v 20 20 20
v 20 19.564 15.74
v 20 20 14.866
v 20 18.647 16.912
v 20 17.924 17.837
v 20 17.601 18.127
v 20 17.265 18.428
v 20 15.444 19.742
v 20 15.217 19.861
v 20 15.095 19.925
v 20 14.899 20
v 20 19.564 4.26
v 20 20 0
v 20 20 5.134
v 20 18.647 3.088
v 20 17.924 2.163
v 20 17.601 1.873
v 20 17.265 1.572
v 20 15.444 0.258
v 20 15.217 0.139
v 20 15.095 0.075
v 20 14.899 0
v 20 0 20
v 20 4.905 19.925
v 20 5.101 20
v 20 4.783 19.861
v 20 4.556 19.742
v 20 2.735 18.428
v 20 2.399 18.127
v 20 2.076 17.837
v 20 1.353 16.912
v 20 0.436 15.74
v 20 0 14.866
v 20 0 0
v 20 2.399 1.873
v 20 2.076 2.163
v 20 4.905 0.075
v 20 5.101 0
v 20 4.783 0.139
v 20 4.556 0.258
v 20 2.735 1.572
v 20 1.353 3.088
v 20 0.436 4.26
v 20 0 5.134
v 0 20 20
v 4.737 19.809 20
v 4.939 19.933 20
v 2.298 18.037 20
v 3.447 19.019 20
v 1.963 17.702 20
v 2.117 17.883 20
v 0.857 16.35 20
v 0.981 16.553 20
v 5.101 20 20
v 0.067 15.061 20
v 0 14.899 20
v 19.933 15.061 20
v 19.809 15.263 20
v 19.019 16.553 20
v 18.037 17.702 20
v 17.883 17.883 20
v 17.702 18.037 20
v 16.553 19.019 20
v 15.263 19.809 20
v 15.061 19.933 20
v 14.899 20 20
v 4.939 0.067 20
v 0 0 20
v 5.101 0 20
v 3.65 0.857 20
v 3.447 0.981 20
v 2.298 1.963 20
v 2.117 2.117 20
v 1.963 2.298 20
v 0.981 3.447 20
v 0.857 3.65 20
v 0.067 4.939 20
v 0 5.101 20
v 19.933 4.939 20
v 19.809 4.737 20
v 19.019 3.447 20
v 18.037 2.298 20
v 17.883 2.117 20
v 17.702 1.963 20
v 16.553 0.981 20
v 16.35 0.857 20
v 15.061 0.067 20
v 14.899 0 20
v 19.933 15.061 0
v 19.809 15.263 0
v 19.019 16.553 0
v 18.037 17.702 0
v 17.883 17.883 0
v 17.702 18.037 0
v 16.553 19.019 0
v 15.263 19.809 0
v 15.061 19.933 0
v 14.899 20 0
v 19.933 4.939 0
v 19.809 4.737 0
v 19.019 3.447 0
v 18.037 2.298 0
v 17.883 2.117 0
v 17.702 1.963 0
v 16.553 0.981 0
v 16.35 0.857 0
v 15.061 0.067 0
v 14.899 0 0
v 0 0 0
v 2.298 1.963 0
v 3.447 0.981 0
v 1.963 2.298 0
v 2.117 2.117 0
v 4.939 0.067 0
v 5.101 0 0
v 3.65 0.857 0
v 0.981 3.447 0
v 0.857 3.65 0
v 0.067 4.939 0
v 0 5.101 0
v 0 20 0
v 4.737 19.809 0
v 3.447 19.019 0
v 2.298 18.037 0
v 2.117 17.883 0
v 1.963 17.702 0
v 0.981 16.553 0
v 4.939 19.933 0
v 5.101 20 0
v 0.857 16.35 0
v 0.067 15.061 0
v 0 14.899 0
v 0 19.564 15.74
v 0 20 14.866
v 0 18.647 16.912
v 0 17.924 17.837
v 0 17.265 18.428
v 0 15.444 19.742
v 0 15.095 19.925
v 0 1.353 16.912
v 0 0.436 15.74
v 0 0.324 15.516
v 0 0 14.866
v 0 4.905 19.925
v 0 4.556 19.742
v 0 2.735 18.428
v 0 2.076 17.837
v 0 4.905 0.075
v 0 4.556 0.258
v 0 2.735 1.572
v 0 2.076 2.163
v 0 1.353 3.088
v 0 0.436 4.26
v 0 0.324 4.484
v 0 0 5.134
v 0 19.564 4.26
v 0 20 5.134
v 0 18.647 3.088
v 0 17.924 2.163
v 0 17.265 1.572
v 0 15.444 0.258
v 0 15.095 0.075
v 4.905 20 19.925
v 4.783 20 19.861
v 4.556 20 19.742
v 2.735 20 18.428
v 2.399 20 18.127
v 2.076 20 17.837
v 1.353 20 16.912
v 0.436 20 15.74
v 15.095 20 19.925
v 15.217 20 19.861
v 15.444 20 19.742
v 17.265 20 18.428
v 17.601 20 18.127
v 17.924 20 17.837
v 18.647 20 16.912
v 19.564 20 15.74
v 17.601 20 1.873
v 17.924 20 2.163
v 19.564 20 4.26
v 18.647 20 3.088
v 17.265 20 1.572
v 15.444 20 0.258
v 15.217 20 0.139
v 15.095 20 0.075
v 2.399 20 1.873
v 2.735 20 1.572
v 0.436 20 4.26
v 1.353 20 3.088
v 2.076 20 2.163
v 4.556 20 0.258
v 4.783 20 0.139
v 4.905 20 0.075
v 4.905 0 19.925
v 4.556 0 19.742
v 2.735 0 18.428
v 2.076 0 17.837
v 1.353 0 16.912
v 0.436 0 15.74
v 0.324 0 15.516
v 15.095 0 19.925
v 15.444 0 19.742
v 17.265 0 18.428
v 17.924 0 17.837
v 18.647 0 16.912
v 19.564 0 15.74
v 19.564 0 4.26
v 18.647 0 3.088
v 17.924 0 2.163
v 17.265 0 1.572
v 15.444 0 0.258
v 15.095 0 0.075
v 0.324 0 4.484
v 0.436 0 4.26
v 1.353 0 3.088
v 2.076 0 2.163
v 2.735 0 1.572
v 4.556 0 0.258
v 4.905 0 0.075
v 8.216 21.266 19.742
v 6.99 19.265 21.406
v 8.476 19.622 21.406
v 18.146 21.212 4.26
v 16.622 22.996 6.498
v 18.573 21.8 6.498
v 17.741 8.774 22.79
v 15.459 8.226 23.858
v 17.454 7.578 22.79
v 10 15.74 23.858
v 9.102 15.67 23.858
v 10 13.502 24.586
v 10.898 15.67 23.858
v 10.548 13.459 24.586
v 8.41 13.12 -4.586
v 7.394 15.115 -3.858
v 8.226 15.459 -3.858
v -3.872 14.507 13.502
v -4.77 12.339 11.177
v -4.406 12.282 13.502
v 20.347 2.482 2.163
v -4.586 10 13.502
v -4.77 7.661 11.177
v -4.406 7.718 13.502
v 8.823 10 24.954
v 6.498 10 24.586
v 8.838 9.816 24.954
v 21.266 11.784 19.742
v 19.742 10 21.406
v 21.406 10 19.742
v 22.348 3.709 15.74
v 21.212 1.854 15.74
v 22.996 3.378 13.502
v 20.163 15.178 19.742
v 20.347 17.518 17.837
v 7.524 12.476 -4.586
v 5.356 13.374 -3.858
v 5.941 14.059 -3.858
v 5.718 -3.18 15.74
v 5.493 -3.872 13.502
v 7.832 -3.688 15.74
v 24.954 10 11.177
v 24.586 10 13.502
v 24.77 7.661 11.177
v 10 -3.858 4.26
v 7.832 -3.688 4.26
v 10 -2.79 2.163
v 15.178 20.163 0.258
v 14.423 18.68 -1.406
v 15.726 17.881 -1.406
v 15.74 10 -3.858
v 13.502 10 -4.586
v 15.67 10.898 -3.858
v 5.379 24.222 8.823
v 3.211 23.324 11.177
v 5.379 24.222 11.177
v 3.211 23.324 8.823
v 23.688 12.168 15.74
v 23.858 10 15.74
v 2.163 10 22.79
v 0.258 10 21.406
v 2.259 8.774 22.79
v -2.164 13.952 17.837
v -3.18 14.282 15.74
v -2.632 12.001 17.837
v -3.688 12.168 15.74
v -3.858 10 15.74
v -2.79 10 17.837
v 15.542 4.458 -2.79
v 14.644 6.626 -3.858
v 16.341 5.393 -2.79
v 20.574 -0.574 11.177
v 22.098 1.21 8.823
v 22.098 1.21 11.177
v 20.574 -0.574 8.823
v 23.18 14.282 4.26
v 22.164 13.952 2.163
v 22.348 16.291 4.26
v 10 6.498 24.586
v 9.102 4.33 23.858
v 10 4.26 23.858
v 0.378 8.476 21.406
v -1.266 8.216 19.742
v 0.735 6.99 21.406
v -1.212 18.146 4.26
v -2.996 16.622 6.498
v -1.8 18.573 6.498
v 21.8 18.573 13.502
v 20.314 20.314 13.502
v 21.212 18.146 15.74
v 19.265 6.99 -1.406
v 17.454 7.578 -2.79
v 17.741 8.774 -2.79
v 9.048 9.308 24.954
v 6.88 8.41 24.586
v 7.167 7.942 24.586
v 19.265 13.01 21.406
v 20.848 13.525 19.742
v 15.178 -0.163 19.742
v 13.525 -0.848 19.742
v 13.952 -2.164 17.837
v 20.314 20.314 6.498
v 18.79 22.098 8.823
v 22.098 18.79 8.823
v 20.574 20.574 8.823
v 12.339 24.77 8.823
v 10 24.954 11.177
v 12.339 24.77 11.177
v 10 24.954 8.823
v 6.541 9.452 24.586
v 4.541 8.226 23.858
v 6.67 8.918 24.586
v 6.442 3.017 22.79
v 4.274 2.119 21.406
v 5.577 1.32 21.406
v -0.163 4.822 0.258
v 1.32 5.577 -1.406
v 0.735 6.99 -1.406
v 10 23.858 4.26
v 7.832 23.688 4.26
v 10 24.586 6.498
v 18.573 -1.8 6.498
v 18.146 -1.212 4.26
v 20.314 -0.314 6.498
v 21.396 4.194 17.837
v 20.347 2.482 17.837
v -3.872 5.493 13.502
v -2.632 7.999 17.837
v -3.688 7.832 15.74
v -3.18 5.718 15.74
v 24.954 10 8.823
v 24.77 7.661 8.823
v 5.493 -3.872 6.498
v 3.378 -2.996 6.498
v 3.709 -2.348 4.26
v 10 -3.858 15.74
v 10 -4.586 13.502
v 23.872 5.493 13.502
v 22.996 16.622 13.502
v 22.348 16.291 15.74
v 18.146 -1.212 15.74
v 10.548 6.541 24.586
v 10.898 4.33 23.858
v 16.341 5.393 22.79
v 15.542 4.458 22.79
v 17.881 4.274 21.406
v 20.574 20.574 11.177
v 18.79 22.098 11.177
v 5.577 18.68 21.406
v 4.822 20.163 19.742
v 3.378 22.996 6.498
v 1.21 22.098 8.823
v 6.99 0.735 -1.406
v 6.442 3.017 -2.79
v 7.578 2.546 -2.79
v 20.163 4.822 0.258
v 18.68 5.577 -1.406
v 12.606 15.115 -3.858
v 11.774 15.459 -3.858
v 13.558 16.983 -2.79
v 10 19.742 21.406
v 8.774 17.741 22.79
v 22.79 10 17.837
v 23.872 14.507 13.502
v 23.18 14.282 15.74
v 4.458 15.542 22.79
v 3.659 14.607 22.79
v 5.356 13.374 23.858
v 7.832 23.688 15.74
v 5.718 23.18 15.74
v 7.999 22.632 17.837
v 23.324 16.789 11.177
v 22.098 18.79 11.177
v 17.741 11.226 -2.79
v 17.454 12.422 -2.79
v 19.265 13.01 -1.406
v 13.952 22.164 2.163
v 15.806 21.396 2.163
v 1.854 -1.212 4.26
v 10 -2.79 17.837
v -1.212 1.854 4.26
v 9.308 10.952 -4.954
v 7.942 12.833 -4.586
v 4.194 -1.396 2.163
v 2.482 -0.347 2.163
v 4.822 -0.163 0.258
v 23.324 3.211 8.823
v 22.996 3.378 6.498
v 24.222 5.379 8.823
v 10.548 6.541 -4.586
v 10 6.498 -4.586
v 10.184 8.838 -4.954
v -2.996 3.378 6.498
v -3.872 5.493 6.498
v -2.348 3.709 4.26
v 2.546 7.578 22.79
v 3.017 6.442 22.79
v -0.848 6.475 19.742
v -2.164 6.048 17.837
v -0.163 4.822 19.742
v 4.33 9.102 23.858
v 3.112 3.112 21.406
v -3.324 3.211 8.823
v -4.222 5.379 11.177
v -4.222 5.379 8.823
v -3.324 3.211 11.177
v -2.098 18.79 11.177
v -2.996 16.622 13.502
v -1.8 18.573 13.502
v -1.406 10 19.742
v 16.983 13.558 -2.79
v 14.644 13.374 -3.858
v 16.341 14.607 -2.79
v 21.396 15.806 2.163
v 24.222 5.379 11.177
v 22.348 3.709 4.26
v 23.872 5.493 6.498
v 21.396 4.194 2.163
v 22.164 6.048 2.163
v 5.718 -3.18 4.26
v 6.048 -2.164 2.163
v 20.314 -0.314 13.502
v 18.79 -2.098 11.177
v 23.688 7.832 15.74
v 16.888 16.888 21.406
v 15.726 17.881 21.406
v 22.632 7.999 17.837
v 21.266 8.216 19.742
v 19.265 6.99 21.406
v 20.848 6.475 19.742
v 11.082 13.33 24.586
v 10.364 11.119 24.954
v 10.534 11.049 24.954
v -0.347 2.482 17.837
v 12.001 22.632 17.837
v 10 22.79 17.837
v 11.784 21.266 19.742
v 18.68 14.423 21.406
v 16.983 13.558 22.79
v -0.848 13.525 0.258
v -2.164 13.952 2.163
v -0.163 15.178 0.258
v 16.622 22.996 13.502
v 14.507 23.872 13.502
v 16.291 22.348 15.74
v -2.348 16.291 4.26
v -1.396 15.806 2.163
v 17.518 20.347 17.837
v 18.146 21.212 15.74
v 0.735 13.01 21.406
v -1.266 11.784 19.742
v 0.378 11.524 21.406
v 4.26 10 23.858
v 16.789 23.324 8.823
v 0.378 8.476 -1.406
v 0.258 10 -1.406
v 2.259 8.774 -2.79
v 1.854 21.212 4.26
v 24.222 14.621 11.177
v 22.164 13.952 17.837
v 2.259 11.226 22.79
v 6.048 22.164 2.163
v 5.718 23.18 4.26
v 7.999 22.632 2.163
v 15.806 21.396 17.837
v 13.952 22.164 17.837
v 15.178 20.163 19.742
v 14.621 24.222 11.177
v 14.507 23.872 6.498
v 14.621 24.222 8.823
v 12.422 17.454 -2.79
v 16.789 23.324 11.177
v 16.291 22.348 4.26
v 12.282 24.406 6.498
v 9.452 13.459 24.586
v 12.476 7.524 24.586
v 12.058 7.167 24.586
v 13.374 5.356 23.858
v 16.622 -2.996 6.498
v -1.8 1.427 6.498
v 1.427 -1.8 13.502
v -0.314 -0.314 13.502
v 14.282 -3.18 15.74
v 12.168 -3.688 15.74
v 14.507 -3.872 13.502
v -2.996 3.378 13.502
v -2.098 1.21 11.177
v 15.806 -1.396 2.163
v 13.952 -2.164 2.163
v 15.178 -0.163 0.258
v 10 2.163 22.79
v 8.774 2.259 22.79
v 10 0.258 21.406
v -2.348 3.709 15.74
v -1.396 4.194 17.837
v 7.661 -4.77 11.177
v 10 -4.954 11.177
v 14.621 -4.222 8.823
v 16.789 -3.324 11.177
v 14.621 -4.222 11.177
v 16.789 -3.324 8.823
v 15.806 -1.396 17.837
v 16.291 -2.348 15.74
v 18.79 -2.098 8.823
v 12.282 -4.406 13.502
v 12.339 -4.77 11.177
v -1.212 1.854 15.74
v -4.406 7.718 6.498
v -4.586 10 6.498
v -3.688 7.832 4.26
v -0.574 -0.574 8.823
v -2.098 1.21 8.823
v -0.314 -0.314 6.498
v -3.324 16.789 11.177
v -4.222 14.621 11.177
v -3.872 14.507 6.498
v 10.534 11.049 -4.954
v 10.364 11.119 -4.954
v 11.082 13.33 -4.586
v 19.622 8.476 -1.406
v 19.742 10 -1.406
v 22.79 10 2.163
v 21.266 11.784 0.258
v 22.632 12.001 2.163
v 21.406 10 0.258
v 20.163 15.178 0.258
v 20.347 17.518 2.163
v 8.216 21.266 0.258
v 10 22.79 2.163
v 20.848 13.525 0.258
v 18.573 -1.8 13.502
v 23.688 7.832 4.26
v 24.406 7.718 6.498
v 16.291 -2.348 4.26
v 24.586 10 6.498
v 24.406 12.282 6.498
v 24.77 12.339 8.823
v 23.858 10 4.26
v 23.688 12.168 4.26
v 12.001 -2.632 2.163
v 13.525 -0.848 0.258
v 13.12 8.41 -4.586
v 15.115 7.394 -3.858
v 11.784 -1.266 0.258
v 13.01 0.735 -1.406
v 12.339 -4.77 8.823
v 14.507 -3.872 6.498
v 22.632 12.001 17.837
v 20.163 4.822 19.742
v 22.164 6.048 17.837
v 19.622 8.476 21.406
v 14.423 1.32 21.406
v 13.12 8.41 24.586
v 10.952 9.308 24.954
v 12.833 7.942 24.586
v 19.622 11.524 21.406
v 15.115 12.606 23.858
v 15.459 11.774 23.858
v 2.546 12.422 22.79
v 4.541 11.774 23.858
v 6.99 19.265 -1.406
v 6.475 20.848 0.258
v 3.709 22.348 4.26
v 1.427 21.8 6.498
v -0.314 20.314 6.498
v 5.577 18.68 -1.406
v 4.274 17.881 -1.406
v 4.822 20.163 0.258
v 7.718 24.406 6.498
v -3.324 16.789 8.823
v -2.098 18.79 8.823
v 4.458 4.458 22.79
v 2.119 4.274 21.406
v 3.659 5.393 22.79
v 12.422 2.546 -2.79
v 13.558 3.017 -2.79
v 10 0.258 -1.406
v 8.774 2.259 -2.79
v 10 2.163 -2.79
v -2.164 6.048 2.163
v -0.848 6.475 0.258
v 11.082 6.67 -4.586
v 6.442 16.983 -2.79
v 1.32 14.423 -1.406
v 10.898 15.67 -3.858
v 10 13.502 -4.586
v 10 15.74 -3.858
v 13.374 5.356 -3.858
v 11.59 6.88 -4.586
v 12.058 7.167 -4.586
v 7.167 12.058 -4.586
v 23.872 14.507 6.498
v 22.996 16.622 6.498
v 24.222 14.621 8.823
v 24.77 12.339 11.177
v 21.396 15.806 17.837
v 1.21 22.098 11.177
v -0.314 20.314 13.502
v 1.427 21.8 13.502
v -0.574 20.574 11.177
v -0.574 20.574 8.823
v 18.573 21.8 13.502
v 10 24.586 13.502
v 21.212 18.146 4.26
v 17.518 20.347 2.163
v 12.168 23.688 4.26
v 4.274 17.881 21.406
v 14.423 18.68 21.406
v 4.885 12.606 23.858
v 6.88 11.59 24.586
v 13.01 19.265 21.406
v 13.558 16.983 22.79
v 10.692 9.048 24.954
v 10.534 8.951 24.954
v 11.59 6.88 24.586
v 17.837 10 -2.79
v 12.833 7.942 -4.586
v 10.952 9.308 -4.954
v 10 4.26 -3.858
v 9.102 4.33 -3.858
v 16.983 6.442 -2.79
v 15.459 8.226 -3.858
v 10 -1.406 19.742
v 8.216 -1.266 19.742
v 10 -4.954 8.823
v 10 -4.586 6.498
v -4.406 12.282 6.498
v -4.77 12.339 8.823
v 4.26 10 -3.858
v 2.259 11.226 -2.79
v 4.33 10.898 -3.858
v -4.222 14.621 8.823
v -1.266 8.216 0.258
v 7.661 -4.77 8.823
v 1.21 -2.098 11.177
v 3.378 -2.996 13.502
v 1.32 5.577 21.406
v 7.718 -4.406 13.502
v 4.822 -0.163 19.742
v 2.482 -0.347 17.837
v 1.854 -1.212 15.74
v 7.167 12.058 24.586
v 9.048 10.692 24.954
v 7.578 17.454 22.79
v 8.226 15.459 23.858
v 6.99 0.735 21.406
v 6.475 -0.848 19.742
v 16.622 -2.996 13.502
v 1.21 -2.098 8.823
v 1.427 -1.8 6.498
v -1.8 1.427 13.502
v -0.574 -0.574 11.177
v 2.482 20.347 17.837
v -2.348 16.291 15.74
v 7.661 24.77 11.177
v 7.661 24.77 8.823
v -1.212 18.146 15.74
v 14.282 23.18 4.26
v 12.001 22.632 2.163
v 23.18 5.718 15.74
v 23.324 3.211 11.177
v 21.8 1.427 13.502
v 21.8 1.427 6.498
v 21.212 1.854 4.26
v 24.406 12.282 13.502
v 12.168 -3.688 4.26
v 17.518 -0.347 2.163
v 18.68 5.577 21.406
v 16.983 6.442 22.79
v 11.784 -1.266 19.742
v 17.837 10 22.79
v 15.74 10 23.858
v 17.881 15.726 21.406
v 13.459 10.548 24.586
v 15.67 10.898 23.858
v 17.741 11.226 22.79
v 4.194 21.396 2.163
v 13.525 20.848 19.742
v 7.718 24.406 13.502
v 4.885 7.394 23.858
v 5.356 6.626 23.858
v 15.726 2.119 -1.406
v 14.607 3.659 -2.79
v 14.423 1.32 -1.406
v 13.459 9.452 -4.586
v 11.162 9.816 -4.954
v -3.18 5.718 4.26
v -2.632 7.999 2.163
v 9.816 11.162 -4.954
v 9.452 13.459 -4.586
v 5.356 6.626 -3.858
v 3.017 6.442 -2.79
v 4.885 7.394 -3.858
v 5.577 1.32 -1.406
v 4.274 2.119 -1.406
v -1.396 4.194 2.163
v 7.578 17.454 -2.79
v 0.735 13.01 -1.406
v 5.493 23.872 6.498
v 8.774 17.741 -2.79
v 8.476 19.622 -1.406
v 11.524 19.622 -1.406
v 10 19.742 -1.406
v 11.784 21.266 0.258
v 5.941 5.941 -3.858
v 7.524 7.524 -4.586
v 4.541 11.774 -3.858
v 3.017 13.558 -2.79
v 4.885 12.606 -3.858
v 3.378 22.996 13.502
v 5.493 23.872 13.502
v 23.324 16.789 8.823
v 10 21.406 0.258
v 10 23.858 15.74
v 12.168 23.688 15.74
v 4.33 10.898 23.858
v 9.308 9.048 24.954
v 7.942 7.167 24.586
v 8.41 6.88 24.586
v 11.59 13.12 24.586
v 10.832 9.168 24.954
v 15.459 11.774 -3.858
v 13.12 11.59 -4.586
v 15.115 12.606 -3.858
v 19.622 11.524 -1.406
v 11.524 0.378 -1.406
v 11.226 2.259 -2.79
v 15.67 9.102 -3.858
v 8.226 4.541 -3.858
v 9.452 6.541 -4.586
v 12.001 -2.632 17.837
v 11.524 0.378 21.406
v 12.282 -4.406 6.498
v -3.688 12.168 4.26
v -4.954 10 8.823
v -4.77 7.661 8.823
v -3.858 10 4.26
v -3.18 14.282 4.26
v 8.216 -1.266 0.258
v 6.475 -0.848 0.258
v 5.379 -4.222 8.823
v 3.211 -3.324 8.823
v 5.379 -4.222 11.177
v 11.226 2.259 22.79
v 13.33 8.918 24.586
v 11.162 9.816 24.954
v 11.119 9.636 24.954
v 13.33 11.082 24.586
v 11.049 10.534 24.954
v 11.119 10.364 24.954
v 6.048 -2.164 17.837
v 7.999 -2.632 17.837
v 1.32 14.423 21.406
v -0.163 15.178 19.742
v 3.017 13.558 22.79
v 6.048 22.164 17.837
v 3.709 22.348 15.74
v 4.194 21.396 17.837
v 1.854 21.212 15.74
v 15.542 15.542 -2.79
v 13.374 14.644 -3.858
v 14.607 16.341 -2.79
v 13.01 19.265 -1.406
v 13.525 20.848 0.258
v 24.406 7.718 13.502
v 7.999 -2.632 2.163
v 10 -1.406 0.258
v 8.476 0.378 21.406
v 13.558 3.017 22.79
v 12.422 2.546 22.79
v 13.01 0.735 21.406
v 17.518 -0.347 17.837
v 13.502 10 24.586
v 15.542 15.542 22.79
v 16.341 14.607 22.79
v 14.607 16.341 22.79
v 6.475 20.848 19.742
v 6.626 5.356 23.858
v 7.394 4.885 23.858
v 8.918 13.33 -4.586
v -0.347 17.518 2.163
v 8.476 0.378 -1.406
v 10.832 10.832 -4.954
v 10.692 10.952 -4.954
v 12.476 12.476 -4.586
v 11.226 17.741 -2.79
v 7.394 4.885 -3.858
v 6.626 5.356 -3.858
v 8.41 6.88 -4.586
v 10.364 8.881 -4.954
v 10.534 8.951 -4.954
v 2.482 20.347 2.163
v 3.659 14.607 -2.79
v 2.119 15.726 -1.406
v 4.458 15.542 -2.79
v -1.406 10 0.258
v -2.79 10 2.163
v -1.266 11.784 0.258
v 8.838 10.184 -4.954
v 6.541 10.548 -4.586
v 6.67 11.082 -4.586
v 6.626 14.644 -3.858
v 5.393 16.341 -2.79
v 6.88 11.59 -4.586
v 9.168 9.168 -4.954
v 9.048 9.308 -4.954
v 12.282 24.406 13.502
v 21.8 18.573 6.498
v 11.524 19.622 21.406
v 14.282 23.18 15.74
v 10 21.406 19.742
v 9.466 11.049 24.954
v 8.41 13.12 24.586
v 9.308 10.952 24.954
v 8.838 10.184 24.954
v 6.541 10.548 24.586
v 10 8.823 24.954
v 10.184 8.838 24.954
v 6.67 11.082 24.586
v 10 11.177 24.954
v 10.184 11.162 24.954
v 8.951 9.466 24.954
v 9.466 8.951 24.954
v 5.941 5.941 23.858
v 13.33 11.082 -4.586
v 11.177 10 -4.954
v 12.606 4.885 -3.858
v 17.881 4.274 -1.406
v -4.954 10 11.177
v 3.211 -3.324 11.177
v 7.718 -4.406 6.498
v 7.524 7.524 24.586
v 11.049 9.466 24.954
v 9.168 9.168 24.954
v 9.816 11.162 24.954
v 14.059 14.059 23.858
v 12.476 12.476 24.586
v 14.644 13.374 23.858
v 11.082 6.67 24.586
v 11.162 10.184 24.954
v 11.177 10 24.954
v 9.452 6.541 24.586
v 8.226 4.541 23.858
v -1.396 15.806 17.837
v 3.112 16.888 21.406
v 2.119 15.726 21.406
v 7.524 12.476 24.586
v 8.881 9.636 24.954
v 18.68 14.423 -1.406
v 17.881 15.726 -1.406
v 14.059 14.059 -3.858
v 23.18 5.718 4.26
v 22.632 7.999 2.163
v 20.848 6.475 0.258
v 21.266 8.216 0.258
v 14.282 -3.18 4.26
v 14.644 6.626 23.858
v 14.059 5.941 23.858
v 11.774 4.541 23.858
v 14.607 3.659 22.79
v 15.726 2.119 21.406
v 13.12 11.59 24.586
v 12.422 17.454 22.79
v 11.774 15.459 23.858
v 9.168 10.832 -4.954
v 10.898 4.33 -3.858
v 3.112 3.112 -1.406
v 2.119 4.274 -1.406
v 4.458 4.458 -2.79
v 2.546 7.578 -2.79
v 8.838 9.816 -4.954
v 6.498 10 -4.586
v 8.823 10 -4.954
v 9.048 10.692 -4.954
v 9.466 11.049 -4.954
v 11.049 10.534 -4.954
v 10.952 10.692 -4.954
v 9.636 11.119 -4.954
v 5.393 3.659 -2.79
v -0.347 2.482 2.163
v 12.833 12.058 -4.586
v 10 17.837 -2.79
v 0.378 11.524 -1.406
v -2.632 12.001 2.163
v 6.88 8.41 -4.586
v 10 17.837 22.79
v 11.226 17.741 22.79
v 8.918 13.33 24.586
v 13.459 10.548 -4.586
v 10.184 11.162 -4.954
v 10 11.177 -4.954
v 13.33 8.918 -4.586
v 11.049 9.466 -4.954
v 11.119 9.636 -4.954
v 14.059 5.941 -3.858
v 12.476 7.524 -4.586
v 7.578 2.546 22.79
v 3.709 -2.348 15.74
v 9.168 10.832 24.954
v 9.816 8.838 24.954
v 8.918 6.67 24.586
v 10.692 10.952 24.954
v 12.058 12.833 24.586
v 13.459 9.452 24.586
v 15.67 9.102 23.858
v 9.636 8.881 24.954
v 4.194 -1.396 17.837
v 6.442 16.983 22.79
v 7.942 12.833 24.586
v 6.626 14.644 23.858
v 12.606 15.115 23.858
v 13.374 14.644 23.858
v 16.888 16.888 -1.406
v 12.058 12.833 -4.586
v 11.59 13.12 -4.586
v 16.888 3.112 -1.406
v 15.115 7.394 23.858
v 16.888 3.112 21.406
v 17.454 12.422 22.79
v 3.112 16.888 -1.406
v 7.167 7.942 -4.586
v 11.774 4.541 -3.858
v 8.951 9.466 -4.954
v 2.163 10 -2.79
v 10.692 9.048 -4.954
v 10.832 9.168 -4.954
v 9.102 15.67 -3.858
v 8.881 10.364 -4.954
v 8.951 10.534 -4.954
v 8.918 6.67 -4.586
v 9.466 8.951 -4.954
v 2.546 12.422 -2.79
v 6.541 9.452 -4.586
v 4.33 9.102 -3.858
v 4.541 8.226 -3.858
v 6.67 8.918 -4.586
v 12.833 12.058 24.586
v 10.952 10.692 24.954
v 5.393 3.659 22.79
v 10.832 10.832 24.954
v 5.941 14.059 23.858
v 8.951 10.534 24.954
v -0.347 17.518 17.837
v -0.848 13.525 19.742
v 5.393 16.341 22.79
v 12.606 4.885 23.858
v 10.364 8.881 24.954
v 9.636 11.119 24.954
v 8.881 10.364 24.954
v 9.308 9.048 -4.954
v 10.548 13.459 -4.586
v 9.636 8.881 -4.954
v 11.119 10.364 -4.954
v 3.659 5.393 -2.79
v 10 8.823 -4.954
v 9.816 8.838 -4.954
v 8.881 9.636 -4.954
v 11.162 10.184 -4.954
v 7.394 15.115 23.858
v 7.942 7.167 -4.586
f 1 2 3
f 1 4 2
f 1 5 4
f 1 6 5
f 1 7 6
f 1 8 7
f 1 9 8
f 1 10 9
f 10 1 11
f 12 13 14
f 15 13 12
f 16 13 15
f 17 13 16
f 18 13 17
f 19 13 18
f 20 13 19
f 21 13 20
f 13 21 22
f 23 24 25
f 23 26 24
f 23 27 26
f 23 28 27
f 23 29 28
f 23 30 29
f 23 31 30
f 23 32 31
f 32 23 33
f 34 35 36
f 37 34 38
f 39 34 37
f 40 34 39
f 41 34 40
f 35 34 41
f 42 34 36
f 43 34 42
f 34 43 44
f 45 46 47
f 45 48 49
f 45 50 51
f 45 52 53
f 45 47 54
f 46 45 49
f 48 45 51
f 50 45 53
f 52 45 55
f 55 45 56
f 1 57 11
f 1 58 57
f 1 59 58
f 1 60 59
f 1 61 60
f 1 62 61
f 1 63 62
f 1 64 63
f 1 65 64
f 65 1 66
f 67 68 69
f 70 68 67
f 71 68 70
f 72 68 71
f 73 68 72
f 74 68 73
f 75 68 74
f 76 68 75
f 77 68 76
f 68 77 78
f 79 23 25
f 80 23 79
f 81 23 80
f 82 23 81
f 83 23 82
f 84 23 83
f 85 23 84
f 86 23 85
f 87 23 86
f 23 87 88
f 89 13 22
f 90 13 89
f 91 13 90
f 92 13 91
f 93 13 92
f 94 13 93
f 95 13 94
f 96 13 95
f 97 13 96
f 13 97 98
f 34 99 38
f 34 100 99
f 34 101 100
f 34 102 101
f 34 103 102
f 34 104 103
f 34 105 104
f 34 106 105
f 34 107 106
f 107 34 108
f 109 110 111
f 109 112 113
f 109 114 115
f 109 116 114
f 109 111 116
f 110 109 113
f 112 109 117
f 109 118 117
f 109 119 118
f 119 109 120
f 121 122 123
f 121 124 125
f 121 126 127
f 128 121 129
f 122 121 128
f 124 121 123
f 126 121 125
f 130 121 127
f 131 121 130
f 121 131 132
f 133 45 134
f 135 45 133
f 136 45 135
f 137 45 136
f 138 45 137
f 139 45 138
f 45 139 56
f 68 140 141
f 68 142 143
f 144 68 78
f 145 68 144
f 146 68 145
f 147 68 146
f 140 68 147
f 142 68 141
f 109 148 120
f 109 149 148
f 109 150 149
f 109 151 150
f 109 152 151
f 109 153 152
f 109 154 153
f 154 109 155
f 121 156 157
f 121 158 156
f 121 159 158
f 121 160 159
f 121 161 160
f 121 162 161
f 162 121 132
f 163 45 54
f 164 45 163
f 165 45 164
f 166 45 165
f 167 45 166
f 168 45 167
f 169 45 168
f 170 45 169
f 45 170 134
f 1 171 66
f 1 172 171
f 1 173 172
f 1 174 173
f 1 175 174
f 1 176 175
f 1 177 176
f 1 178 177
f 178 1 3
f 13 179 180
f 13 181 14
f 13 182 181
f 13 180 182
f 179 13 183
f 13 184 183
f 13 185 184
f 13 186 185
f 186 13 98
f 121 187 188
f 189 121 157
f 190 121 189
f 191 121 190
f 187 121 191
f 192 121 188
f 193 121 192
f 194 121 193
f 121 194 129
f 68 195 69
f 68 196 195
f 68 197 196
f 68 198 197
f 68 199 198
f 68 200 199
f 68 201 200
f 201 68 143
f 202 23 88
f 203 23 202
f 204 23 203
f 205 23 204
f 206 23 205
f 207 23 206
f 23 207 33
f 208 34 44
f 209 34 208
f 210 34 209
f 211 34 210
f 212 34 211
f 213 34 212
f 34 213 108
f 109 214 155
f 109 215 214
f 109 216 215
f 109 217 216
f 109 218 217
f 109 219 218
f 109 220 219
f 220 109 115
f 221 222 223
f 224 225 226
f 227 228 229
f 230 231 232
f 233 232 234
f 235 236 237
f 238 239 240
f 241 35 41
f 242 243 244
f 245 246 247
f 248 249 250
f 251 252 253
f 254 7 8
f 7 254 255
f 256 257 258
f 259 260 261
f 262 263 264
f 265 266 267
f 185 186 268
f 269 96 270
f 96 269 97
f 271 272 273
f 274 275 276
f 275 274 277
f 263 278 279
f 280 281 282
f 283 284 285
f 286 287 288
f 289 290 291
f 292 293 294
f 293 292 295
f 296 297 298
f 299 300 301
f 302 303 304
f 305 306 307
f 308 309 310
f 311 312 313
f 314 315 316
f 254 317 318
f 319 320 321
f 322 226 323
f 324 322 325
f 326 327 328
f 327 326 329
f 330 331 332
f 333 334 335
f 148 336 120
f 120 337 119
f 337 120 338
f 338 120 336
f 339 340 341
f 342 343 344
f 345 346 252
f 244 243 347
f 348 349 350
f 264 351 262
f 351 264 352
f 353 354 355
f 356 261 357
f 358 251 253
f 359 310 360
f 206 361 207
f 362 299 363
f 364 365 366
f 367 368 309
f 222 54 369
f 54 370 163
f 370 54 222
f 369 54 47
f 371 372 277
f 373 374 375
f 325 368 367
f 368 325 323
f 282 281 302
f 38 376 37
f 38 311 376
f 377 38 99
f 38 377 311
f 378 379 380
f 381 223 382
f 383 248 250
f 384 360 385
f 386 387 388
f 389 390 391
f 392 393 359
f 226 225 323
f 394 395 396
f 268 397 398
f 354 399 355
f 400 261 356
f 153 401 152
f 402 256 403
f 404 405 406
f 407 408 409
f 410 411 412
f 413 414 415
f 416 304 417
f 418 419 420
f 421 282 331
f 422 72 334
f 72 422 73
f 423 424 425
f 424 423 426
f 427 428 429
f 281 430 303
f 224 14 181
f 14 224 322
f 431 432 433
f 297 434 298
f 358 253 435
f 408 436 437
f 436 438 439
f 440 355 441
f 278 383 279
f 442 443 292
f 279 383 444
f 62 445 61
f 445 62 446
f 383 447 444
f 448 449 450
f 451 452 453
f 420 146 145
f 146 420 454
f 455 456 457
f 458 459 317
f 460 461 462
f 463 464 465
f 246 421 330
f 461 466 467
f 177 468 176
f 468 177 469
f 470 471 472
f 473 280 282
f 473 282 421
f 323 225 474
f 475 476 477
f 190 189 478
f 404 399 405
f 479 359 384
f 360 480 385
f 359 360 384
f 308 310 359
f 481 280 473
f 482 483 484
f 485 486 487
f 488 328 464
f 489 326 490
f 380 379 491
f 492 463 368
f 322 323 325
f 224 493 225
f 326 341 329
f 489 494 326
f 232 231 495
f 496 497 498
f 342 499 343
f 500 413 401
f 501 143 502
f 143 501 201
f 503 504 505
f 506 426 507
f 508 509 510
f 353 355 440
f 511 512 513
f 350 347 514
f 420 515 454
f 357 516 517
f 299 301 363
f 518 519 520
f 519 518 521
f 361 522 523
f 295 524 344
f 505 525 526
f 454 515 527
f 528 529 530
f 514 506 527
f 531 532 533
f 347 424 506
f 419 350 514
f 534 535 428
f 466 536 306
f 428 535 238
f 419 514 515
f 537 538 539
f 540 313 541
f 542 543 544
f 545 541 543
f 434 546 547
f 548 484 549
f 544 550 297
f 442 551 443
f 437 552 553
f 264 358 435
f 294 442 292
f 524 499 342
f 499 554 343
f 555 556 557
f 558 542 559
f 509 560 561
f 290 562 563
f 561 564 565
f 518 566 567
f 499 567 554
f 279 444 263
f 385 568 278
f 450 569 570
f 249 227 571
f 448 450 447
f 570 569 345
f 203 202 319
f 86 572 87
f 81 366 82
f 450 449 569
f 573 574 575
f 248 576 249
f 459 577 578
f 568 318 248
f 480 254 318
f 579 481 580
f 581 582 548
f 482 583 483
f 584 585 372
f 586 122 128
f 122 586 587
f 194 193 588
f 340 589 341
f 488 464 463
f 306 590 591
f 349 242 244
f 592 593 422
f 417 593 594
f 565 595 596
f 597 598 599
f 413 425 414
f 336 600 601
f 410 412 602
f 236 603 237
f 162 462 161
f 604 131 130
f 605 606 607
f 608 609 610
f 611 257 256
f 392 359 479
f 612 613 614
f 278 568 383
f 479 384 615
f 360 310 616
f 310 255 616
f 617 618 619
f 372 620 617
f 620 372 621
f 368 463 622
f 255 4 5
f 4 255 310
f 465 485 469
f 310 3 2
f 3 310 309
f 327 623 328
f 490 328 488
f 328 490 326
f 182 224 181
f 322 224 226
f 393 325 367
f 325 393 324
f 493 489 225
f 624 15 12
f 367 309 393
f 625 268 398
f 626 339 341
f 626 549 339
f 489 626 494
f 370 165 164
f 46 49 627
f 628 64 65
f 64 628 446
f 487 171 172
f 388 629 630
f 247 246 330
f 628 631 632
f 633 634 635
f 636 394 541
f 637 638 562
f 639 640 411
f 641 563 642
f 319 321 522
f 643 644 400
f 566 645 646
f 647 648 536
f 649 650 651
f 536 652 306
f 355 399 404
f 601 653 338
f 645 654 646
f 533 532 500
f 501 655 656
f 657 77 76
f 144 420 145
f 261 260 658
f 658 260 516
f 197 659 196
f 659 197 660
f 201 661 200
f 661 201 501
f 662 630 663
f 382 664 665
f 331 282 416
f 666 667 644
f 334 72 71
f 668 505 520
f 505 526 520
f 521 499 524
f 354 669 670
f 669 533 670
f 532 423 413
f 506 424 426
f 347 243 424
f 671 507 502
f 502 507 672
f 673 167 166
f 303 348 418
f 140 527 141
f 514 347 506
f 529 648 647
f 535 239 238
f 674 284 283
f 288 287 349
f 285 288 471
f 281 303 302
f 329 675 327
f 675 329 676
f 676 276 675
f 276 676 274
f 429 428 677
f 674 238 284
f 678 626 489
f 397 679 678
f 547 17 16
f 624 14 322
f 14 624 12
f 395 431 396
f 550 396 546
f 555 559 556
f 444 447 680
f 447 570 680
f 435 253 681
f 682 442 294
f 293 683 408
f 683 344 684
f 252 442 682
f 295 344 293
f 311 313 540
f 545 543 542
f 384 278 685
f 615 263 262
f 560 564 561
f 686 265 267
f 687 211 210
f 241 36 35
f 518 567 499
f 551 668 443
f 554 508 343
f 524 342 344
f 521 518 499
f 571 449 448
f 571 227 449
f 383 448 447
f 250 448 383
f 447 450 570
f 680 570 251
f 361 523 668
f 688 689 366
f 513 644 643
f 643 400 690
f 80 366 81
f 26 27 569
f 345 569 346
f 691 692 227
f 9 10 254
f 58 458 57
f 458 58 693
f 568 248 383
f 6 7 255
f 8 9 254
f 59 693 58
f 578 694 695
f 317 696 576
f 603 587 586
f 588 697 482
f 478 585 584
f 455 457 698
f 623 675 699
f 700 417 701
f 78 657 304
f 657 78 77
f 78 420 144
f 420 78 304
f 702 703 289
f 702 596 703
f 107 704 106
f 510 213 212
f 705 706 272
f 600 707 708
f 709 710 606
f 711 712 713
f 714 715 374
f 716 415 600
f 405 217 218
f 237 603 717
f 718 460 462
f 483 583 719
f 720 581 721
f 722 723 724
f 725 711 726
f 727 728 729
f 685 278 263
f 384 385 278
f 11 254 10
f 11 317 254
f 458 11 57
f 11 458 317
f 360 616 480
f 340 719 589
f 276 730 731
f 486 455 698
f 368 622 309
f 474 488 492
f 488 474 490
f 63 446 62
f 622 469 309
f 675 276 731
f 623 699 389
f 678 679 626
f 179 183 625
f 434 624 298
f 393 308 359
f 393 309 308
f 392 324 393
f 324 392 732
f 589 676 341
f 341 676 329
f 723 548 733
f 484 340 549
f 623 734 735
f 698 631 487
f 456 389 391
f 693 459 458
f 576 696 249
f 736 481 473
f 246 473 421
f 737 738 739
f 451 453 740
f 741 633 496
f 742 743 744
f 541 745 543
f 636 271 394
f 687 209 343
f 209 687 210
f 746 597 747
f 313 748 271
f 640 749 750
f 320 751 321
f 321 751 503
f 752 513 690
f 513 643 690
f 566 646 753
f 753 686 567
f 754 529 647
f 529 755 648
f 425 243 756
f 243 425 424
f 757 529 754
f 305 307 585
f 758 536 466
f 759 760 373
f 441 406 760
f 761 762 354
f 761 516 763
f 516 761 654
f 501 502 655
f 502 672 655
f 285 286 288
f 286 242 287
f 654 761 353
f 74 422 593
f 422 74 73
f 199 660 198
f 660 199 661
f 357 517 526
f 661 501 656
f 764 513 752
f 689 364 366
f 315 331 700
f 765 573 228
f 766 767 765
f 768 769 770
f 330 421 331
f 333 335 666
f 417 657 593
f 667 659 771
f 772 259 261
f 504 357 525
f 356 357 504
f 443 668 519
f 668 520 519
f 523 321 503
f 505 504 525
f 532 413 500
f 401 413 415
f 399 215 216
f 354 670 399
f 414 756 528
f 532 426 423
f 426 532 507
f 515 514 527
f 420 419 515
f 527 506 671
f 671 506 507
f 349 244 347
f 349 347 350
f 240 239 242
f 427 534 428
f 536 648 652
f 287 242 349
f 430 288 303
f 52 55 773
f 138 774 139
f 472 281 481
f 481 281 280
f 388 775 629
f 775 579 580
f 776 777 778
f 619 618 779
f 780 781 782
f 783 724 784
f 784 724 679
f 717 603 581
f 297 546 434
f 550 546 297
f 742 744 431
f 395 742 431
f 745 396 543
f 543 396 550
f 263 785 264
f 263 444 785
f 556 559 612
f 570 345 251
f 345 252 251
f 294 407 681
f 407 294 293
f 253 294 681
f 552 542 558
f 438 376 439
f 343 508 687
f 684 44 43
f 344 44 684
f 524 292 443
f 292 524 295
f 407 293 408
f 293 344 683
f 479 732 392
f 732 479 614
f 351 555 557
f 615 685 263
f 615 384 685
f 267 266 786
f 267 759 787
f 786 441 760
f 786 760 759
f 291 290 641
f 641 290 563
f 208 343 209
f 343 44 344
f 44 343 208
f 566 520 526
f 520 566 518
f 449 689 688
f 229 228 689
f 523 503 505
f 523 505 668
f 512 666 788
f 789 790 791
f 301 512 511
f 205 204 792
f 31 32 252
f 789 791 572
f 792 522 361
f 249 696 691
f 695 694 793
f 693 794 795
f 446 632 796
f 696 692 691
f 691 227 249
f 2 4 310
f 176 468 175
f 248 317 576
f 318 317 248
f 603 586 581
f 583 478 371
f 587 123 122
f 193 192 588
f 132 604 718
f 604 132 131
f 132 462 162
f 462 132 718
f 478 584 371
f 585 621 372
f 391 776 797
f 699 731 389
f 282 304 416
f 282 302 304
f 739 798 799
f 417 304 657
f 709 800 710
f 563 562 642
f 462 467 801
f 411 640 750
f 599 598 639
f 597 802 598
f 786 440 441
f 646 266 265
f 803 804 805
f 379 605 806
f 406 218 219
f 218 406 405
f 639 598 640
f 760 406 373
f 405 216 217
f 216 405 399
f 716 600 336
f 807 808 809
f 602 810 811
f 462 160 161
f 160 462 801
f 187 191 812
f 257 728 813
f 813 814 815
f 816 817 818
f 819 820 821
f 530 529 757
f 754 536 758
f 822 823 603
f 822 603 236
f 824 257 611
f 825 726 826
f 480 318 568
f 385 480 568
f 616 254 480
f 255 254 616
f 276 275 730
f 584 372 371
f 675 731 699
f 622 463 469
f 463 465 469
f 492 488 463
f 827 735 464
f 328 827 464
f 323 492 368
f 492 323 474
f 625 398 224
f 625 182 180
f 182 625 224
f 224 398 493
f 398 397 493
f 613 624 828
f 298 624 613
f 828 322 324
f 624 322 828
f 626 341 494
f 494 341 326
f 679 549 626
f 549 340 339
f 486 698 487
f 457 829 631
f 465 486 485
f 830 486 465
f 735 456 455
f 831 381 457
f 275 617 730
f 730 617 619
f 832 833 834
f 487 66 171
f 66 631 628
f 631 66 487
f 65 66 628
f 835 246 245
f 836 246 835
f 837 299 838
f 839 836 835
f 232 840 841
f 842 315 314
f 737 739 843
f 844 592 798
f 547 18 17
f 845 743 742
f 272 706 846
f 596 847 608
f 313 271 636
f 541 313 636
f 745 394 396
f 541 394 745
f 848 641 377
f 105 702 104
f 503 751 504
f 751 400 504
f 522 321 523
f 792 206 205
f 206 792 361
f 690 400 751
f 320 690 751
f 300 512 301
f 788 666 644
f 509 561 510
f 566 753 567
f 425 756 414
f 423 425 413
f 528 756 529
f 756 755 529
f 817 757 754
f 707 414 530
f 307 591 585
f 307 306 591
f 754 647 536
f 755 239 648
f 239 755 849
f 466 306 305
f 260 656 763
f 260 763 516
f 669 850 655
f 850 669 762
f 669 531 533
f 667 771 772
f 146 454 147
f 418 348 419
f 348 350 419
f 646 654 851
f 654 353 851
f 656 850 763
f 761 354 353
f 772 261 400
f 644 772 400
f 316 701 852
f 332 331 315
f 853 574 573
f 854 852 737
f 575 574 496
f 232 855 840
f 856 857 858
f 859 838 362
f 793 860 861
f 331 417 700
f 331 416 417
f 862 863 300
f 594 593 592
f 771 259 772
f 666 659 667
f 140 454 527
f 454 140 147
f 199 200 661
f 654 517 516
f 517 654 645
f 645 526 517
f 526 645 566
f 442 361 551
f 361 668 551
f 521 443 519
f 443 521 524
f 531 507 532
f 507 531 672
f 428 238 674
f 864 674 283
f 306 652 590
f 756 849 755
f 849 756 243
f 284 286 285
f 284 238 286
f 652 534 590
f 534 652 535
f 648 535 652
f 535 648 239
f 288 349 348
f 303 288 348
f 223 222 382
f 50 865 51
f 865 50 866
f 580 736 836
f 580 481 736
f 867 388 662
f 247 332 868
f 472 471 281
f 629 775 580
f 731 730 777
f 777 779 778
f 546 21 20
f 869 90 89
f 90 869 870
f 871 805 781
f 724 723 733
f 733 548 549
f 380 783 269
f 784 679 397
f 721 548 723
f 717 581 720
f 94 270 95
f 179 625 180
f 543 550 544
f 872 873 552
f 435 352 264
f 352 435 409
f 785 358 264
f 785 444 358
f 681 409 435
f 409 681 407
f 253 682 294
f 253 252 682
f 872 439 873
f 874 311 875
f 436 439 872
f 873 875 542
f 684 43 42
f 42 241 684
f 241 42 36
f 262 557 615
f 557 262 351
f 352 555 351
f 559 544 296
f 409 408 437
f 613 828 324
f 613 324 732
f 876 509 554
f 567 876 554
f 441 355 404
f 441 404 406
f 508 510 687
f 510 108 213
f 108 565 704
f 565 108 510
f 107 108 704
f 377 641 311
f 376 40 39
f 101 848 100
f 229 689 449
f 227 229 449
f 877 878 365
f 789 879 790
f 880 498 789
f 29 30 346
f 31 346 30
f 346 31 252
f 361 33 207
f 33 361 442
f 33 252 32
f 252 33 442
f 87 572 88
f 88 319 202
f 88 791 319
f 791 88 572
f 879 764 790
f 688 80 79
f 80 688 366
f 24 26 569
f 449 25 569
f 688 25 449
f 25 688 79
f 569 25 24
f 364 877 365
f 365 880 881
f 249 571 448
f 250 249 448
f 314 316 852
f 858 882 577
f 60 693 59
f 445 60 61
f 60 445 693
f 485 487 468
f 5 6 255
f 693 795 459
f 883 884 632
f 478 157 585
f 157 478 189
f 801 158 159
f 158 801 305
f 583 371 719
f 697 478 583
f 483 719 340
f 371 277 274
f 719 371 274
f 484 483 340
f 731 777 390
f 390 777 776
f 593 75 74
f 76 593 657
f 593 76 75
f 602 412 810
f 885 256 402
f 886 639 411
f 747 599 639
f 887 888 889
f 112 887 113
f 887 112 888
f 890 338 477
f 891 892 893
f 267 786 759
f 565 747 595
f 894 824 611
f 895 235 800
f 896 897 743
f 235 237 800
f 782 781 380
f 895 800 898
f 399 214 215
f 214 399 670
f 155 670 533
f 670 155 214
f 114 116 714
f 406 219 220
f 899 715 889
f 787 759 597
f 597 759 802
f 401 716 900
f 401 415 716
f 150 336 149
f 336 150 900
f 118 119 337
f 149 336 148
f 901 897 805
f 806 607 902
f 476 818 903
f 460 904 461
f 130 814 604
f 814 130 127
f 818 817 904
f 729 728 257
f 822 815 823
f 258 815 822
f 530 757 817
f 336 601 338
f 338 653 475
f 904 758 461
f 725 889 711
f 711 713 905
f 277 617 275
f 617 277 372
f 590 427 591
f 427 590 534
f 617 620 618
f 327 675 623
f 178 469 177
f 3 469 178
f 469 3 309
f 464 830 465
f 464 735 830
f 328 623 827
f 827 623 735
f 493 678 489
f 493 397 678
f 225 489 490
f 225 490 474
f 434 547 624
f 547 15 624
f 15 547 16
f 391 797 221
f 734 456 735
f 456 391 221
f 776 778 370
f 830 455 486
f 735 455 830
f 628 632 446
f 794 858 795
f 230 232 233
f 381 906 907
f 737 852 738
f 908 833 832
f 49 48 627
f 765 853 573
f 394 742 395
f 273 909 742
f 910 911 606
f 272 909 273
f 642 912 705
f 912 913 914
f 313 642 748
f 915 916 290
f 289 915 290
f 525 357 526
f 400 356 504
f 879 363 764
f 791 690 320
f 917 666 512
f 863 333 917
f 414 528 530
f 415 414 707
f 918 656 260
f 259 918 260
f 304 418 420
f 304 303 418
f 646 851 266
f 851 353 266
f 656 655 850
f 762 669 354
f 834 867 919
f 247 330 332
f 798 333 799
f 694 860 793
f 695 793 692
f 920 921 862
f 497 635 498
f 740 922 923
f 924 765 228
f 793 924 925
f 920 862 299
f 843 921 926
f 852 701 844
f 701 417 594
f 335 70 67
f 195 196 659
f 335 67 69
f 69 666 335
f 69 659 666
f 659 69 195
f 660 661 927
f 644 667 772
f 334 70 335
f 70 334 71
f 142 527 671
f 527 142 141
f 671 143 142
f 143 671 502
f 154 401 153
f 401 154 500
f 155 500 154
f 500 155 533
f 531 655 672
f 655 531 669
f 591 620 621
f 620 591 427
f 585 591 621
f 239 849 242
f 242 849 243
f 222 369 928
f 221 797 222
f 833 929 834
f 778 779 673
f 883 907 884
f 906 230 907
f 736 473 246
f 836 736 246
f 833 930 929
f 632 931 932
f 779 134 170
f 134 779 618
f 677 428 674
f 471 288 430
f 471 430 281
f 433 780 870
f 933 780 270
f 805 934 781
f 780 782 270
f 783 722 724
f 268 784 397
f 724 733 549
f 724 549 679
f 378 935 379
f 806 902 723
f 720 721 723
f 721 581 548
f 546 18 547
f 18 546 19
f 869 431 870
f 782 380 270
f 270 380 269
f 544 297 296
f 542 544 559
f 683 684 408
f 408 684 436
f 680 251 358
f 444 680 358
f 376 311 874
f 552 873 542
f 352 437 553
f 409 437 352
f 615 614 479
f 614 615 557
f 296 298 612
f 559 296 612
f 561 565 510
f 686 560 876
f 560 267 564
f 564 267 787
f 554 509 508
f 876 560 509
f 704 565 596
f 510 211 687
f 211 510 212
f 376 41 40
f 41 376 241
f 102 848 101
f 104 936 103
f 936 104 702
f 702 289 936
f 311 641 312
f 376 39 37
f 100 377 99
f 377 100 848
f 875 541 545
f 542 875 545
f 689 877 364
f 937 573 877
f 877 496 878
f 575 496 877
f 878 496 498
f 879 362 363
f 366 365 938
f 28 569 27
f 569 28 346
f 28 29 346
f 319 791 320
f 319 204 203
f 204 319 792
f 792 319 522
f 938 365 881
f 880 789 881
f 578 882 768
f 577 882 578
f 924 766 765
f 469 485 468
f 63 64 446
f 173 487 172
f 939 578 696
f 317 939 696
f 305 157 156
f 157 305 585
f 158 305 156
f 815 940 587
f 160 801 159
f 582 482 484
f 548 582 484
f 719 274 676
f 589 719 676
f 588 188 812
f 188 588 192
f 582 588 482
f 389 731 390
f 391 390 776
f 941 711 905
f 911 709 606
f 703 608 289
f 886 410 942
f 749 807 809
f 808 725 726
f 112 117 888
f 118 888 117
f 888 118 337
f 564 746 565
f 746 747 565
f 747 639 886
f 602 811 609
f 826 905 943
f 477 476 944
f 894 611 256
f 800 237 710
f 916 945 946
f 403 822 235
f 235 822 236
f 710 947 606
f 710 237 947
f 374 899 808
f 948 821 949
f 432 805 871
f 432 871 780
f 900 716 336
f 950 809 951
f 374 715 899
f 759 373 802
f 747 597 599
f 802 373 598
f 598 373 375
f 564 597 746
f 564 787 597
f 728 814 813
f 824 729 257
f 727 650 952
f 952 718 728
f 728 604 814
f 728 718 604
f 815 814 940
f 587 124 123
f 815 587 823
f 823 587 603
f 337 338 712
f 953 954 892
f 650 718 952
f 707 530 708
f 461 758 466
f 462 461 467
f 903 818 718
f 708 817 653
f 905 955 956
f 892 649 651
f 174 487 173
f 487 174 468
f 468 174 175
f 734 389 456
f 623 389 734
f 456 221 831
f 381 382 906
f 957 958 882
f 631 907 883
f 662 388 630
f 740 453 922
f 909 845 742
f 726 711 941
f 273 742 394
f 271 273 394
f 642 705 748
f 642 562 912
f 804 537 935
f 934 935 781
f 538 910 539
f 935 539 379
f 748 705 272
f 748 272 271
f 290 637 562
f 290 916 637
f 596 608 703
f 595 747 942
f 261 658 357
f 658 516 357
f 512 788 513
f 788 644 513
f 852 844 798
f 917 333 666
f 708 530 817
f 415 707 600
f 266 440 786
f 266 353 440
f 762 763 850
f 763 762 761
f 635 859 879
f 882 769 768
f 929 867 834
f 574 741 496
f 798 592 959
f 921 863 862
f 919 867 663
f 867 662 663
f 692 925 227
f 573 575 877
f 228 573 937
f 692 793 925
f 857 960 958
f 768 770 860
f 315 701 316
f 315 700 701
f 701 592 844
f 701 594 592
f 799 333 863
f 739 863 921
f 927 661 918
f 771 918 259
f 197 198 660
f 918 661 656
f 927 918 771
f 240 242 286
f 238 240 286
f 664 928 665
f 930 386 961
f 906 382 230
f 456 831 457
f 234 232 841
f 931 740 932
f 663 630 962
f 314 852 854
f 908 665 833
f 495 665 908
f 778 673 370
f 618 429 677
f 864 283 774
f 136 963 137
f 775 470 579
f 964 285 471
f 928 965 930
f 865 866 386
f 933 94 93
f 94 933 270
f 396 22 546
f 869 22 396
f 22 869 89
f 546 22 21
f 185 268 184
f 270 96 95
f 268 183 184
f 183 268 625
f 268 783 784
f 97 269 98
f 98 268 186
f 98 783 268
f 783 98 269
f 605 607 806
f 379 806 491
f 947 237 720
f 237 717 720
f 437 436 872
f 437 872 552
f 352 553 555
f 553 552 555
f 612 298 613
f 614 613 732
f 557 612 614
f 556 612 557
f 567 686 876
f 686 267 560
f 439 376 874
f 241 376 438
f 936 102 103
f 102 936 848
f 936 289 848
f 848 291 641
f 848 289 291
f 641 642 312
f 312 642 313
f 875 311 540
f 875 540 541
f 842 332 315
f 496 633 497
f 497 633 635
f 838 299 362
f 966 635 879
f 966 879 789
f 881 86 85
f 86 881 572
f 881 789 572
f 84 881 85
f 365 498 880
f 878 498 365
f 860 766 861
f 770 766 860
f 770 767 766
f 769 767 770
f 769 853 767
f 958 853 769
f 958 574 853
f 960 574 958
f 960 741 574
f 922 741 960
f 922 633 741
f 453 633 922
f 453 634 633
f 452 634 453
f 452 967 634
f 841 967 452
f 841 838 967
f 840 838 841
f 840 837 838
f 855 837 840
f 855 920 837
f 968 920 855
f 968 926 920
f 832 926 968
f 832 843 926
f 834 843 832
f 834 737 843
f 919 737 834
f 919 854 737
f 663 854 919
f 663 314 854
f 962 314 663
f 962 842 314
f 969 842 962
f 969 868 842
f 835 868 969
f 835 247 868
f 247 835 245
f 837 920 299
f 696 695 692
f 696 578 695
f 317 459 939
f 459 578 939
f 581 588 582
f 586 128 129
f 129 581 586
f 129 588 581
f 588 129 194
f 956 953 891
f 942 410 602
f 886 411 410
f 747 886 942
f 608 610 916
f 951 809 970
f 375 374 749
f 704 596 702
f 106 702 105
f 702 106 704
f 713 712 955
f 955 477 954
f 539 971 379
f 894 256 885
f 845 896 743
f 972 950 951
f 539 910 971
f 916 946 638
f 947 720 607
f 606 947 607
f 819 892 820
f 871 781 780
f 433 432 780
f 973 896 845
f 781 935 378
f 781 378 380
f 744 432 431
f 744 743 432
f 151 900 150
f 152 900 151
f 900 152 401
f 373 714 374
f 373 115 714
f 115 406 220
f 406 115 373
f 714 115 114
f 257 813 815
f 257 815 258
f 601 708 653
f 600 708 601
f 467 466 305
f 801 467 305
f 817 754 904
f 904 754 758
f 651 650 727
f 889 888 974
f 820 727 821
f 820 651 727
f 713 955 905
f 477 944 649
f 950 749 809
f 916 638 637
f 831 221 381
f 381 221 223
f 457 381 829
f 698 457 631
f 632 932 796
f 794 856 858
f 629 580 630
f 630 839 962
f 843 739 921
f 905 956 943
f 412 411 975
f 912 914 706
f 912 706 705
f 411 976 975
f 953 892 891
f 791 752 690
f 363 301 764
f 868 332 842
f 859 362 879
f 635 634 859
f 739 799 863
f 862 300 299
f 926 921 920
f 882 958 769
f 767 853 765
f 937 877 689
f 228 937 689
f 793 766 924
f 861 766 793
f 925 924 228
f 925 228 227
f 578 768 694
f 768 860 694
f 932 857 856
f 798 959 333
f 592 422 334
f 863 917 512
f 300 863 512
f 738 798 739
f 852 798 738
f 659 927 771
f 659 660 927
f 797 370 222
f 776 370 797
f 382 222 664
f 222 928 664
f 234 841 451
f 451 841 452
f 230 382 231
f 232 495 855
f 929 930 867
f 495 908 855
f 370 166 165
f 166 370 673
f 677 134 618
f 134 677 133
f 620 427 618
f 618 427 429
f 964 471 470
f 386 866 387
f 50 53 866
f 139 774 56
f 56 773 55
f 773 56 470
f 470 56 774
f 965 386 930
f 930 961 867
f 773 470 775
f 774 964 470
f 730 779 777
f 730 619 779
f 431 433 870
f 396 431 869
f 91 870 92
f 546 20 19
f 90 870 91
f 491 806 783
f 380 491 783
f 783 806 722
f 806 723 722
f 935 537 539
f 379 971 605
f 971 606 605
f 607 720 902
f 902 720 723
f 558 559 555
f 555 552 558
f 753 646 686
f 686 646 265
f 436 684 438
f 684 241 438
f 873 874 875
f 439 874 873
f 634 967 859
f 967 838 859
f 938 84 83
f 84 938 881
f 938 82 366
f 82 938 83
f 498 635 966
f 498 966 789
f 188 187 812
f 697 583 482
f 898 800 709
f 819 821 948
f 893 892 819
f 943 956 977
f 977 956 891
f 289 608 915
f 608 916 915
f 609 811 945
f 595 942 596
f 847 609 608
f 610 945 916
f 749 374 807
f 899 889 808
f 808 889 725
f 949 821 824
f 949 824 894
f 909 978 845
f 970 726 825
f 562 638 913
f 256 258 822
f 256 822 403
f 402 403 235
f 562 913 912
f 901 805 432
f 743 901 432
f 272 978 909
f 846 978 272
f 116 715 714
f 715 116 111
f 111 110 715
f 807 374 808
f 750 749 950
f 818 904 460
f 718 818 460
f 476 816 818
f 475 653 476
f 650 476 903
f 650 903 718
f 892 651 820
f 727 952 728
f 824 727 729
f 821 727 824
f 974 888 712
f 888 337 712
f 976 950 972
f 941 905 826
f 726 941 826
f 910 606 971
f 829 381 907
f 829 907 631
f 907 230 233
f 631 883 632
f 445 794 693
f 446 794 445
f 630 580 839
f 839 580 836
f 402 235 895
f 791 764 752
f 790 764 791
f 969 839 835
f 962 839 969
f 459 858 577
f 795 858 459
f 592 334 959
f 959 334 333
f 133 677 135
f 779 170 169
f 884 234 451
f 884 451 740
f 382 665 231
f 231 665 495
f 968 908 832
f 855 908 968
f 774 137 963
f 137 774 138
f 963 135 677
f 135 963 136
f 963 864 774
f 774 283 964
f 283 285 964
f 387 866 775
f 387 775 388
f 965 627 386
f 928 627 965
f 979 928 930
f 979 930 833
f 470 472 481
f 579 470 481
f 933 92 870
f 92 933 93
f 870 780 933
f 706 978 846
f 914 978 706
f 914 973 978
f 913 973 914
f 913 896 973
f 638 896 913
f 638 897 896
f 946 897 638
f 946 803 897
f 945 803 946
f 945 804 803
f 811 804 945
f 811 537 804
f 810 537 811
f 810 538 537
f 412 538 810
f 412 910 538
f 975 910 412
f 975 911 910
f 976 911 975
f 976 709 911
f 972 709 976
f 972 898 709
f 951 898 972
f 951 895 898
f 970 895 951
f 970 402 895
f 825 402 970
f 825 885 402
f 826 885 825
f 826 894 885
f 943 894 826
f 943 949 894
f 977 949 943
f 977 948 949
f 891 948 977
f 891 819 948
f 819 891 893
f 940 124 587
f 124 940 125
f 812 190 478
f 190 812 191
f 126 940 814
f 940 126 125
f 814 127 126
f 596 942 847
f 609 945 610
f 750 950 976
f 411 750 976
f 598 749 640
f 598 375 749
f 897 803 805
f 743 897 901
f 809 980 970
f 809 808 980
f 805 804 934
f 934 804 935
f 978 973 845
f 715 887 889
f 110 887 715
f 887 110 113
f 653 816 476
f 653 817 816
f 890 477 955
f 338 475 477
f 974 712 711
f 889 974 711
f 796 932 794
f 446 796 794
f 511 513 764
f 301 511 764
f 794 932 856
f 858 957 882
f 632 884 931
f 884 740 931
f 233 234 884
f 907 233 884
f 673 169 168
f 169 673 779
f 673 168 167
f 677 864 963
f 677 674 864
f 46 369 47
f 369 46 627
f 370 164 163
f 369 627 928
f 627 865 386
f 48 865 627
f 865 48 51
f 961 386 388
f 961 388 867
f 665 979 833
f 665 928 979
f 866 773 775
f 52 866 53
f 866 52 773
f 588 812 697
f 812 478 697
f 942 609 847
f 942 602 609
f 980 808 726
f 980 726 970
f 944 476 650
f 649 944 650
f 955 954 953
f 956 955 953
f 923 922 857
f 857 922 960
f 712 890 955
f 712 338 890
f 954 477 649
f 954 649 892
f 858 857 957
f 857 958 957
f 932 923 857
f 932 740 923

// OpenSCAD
// Union of two shapes
union() {
    cube([20, 20, 20]);
    translate([10, 10, 10])
        sphere(r = 15, $fn = 40);
}
